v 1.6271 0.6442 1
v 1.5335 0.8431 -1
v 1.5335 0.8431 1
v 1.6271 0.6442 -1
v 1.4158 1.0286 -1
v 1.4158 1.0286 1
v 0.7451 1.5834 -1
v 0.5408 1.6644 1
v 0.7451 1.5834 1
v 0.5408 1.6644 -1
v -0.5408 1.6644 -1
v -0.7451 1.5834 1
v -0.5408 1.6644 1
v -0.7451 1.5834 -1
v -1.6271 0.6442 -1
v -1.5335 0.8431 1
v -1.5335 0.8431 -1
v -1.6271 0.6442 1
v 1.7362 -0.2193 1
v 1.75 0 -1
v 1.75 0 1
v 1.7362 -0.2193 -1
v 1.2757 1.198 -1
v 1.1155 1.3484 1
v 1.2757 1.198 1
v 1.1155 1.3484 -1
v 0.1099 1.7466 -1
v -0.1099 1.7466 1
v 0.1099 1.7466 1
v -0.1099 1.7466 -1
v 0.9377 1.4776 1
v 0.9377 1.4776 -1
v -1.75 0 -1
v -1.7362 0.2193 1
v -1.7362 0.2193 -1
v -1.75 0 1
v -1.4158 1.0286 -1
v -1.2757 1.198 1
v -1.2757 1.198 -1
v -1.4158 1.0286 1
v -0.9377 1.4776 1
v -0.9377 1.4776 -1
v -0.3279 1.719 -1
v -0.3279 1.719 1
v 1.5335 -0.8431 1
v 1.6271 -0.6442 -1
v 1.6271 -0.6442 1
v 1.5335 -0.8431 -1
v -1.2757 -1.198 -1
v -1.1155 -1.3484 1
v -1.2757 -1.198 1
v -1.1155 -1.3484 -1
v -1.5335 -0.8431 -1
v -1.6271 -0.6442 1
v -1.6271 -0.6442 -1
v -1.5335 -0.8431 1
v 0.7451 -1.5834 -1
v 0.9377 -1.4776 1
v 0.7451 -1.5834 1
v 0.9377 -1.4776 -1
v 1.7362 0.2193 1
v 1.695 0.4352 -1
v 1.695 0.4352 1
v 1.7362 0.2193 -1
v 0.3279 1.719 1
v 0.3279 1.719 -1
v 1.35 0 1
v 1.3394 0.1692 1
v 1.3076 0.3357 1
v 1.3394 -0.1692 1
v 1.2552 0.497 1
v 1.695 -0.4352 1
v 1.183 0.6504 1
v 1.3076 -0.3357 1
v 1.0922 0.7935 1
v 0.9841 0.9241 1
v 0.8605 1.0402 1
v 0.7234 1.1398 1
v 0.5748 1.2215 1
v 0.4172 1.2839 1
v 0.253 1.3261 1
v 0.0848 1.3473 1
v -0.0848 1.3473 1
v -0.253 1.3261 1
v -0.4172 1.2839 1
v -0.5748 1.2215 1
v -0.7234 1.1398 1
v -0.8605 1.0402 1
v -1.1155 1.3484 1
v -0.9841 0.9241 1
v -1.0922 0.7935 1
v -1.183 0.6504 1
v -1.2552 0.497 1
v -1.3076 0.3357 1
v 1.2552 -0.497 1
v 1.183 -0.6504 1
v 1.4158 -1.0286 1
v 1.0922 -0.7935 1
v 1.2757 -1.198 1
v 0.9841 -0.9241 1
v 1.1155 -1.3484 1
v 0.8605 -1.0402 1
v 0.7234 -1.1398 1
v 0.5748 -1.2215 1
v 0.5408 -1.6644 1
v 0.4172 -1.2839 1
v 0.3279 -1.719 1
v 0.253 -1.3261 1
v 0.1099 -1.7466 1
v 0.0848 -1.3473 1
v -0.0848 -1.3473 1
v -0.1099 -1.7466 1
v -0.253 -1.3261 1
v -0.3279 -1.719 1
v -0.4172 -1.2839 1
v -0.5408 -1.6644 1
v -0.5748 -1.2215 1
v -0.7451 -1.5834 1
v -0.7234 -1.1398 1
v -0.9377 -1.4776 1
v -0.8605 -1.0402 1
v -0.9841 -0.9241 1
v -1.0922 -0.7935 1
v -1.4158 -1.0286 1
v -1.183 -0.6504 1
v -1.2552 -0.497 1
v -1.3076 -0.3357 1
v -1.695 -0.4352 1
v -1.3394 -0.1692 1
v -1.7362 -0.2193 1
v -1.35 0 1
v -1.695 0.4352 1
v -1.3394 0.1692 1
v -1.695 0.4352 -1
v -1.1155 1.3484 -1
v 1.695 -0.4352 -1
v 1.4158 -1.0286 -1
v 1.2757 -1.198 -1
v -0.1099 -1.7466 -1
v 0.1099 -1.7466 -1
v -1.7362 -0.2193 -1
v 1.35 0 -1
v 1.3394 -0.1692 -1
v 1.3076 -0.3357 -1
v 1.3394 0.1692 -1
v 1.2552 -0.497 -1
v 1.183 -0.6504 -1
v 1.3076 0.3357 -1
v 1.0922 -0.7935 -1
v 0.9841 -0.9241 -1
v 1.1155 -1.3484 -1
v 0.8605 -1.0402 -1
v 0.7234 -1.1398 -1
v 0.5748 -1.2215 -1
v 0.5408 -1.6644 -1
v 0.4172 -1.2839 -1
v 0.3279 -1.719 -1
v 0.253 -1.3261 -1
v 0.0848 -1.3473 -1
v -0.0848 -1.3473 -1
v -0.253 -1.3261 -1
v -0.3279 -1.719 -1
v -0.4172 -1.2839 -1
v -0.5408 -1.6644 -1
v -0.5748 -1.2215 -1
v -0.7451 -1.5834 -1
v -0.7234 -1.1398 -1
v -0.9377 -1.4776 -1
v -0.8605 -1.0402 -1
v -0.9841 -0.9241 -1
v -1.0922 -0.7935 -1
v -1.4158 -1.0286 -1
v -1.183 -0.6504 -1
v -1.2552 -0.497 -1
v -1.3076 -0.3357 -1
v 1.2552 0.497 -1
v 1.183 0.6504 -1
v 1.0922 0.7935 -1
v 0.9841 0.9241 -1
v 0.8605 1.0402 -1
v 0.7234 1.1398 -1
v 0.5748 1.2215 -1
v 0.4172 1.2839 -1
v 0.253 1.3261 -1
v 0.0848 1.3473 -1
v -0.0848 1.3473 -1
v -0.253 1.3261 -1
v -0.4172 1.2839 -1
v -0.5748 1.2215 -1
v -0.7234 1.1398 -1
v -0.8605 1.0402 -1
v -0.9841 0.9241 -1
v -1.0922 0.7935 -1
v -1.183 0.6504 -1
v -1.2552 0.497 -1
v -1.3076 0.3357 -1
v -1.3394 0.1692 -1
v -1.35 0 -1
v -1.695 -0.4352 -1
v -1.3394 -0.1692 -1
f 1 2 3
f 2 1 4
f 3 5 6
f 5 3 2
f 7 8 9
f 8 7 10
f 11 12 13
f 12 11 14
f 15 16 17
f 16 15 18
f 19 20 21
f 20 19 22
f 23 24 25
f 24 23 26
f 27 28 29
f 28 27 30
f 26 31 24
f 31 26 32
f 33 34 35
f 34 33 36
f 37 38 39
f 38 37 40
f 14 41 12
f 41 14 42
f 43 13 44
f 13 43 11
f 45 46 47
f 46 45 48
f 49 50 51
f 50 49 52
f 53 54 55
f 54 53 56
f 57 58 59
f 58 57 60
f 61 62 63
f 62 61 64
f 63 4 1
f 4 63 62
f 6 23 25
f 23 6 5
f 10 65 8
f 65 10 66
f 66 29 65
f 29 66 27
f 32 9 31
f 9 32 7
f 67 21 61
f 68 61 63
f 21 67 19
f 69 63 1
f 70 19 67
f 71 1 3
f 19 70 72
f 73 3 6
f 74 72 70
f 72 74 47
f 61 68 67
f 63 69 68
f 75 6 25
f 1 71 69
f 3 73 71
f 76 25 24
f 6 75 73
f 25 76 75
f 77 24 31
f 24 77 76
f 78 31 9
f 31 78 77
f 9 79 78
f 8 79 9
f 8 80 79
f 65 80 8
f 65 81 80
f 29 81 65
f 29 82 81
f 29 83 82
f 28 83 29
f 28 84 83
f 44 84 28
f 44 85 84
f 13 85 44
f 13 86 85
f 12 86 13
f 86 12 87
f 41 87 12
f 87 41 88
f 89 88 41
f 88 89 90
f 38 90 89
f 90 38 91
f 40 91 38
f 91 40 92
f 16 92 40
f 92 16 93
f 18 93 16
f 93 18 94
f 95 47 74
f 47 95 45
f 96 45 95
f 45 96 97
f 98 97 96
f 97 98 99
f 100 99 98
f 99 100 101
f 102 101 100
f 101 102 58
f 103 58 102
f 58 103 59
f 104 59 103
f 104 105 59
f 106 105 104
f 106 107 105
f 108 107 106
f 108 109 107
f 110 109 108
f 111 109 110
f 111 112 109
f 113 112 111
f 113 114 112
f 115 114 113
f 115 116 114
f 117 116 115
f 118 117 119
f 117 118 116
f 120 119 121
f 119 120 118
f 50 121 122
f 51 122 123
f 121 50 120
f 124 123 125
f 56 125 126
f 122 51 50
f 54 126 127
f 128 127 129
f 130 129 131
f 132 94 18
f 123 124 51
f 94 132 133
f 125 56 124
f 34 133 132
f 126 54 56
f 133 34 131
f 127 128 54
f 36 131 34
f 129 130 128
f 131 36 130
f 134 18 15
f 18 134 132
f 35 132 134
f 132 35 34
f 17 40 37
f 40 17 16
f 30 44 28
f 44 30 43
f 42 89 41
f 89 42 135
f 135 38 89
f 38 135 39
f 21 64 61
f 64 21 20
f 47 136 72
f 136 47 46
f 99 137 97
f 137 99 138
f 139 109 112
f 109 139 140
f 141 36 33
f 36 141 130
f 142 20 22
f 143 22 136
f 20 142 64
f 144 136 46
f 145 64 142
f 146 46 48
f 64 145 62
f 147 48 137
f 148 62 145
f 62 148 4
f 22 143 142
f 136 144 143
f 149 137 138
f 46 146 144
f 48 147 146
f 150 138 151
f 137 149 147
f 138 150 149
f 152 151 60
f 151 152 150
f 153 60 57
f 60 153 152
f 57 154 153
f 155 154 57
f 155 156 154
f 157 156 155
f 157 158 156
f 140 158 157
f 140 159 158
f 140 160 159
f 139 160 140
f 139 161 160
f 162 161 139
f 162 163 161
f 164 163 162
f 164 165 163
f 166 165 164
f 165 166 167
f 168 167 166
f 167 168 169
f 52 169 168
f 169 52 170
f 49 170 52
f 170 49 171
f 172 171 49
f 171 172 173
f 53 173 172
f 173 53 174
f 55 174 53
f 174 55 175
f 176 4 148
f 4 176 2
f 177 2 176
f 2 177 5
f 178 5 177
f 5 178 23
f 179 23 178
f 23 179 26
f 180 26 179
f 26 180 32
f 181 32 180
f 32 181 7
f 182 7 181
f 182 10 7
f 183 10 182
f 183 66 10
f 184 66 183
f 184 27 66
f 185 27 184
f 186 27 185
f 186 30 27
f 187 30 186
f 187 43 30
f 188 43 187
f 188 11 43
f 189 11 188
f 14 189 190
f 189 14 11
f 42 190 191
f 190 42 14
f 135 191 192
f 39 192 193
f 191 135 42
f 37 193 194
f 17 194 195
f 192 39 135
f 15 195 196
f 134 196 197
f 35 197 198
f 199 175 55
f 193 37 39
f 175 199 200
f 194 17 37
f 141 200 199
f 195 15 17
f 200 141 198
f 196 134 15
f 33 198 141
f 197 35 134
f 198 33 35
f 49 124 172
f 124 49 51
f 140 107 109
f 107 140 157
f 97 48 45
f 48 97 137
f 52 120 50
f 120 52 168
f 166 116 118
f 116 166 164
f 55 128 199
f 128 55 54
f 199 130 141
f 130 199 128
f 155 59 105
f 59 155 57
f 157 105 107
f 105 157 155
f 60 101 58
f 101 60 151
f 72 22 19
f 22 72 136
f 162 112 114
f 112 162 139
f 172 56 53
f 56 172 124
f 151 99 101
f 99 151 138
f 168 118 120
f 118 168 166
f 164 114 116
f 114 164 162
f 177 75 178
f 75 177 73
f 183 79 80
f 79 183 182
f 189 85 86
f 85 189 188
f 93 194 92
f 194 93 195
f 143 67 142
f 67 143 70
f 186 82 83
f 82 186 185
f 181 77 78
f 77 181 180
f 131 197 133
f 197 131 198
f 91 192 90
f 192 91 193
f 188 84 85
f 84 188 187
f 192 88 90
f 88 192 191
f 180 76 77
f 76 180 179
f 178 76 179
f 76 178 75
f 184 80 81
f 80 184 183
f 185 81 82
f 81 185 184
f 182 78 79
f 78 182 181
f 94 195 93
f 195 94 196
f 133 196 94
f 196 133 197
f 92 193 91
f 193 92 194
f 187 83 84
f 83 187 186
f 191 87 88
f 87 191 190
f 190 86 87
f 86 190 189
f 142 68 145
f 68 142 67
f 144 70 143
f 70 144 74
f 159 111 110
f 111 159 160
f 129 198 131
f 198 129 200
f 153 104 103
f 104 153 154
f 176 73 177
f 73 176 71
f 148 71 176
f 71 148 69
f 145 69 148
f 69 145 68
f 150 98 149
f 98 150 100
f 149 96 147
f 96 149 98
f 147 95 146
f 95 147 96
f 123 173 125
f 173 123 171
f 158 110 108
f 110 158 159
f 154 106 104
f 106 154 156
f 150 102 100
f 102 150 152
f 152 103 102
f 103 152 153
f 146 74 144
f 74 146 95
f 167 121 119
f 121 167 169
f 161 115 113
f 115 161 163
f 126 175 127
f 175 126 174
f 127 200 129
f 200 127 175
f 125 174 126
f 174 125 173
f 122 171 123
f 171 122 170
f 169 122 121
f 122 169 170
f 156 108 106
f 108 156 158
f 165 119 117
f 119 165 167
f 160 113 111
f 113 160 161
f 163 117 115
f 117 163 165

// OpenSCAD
$fn = 50;


difference() {
	union() {
		translate(v = [0, 0, -1.0000000000]) {
			cylinder(h = 2, r = 1.7500000000);
		}
	}
	union() {
		translate(v = [0, 0, -100.0000000000]) {
			cylinder(h = 200, r = 1.3500000000);
		}
	}
}
